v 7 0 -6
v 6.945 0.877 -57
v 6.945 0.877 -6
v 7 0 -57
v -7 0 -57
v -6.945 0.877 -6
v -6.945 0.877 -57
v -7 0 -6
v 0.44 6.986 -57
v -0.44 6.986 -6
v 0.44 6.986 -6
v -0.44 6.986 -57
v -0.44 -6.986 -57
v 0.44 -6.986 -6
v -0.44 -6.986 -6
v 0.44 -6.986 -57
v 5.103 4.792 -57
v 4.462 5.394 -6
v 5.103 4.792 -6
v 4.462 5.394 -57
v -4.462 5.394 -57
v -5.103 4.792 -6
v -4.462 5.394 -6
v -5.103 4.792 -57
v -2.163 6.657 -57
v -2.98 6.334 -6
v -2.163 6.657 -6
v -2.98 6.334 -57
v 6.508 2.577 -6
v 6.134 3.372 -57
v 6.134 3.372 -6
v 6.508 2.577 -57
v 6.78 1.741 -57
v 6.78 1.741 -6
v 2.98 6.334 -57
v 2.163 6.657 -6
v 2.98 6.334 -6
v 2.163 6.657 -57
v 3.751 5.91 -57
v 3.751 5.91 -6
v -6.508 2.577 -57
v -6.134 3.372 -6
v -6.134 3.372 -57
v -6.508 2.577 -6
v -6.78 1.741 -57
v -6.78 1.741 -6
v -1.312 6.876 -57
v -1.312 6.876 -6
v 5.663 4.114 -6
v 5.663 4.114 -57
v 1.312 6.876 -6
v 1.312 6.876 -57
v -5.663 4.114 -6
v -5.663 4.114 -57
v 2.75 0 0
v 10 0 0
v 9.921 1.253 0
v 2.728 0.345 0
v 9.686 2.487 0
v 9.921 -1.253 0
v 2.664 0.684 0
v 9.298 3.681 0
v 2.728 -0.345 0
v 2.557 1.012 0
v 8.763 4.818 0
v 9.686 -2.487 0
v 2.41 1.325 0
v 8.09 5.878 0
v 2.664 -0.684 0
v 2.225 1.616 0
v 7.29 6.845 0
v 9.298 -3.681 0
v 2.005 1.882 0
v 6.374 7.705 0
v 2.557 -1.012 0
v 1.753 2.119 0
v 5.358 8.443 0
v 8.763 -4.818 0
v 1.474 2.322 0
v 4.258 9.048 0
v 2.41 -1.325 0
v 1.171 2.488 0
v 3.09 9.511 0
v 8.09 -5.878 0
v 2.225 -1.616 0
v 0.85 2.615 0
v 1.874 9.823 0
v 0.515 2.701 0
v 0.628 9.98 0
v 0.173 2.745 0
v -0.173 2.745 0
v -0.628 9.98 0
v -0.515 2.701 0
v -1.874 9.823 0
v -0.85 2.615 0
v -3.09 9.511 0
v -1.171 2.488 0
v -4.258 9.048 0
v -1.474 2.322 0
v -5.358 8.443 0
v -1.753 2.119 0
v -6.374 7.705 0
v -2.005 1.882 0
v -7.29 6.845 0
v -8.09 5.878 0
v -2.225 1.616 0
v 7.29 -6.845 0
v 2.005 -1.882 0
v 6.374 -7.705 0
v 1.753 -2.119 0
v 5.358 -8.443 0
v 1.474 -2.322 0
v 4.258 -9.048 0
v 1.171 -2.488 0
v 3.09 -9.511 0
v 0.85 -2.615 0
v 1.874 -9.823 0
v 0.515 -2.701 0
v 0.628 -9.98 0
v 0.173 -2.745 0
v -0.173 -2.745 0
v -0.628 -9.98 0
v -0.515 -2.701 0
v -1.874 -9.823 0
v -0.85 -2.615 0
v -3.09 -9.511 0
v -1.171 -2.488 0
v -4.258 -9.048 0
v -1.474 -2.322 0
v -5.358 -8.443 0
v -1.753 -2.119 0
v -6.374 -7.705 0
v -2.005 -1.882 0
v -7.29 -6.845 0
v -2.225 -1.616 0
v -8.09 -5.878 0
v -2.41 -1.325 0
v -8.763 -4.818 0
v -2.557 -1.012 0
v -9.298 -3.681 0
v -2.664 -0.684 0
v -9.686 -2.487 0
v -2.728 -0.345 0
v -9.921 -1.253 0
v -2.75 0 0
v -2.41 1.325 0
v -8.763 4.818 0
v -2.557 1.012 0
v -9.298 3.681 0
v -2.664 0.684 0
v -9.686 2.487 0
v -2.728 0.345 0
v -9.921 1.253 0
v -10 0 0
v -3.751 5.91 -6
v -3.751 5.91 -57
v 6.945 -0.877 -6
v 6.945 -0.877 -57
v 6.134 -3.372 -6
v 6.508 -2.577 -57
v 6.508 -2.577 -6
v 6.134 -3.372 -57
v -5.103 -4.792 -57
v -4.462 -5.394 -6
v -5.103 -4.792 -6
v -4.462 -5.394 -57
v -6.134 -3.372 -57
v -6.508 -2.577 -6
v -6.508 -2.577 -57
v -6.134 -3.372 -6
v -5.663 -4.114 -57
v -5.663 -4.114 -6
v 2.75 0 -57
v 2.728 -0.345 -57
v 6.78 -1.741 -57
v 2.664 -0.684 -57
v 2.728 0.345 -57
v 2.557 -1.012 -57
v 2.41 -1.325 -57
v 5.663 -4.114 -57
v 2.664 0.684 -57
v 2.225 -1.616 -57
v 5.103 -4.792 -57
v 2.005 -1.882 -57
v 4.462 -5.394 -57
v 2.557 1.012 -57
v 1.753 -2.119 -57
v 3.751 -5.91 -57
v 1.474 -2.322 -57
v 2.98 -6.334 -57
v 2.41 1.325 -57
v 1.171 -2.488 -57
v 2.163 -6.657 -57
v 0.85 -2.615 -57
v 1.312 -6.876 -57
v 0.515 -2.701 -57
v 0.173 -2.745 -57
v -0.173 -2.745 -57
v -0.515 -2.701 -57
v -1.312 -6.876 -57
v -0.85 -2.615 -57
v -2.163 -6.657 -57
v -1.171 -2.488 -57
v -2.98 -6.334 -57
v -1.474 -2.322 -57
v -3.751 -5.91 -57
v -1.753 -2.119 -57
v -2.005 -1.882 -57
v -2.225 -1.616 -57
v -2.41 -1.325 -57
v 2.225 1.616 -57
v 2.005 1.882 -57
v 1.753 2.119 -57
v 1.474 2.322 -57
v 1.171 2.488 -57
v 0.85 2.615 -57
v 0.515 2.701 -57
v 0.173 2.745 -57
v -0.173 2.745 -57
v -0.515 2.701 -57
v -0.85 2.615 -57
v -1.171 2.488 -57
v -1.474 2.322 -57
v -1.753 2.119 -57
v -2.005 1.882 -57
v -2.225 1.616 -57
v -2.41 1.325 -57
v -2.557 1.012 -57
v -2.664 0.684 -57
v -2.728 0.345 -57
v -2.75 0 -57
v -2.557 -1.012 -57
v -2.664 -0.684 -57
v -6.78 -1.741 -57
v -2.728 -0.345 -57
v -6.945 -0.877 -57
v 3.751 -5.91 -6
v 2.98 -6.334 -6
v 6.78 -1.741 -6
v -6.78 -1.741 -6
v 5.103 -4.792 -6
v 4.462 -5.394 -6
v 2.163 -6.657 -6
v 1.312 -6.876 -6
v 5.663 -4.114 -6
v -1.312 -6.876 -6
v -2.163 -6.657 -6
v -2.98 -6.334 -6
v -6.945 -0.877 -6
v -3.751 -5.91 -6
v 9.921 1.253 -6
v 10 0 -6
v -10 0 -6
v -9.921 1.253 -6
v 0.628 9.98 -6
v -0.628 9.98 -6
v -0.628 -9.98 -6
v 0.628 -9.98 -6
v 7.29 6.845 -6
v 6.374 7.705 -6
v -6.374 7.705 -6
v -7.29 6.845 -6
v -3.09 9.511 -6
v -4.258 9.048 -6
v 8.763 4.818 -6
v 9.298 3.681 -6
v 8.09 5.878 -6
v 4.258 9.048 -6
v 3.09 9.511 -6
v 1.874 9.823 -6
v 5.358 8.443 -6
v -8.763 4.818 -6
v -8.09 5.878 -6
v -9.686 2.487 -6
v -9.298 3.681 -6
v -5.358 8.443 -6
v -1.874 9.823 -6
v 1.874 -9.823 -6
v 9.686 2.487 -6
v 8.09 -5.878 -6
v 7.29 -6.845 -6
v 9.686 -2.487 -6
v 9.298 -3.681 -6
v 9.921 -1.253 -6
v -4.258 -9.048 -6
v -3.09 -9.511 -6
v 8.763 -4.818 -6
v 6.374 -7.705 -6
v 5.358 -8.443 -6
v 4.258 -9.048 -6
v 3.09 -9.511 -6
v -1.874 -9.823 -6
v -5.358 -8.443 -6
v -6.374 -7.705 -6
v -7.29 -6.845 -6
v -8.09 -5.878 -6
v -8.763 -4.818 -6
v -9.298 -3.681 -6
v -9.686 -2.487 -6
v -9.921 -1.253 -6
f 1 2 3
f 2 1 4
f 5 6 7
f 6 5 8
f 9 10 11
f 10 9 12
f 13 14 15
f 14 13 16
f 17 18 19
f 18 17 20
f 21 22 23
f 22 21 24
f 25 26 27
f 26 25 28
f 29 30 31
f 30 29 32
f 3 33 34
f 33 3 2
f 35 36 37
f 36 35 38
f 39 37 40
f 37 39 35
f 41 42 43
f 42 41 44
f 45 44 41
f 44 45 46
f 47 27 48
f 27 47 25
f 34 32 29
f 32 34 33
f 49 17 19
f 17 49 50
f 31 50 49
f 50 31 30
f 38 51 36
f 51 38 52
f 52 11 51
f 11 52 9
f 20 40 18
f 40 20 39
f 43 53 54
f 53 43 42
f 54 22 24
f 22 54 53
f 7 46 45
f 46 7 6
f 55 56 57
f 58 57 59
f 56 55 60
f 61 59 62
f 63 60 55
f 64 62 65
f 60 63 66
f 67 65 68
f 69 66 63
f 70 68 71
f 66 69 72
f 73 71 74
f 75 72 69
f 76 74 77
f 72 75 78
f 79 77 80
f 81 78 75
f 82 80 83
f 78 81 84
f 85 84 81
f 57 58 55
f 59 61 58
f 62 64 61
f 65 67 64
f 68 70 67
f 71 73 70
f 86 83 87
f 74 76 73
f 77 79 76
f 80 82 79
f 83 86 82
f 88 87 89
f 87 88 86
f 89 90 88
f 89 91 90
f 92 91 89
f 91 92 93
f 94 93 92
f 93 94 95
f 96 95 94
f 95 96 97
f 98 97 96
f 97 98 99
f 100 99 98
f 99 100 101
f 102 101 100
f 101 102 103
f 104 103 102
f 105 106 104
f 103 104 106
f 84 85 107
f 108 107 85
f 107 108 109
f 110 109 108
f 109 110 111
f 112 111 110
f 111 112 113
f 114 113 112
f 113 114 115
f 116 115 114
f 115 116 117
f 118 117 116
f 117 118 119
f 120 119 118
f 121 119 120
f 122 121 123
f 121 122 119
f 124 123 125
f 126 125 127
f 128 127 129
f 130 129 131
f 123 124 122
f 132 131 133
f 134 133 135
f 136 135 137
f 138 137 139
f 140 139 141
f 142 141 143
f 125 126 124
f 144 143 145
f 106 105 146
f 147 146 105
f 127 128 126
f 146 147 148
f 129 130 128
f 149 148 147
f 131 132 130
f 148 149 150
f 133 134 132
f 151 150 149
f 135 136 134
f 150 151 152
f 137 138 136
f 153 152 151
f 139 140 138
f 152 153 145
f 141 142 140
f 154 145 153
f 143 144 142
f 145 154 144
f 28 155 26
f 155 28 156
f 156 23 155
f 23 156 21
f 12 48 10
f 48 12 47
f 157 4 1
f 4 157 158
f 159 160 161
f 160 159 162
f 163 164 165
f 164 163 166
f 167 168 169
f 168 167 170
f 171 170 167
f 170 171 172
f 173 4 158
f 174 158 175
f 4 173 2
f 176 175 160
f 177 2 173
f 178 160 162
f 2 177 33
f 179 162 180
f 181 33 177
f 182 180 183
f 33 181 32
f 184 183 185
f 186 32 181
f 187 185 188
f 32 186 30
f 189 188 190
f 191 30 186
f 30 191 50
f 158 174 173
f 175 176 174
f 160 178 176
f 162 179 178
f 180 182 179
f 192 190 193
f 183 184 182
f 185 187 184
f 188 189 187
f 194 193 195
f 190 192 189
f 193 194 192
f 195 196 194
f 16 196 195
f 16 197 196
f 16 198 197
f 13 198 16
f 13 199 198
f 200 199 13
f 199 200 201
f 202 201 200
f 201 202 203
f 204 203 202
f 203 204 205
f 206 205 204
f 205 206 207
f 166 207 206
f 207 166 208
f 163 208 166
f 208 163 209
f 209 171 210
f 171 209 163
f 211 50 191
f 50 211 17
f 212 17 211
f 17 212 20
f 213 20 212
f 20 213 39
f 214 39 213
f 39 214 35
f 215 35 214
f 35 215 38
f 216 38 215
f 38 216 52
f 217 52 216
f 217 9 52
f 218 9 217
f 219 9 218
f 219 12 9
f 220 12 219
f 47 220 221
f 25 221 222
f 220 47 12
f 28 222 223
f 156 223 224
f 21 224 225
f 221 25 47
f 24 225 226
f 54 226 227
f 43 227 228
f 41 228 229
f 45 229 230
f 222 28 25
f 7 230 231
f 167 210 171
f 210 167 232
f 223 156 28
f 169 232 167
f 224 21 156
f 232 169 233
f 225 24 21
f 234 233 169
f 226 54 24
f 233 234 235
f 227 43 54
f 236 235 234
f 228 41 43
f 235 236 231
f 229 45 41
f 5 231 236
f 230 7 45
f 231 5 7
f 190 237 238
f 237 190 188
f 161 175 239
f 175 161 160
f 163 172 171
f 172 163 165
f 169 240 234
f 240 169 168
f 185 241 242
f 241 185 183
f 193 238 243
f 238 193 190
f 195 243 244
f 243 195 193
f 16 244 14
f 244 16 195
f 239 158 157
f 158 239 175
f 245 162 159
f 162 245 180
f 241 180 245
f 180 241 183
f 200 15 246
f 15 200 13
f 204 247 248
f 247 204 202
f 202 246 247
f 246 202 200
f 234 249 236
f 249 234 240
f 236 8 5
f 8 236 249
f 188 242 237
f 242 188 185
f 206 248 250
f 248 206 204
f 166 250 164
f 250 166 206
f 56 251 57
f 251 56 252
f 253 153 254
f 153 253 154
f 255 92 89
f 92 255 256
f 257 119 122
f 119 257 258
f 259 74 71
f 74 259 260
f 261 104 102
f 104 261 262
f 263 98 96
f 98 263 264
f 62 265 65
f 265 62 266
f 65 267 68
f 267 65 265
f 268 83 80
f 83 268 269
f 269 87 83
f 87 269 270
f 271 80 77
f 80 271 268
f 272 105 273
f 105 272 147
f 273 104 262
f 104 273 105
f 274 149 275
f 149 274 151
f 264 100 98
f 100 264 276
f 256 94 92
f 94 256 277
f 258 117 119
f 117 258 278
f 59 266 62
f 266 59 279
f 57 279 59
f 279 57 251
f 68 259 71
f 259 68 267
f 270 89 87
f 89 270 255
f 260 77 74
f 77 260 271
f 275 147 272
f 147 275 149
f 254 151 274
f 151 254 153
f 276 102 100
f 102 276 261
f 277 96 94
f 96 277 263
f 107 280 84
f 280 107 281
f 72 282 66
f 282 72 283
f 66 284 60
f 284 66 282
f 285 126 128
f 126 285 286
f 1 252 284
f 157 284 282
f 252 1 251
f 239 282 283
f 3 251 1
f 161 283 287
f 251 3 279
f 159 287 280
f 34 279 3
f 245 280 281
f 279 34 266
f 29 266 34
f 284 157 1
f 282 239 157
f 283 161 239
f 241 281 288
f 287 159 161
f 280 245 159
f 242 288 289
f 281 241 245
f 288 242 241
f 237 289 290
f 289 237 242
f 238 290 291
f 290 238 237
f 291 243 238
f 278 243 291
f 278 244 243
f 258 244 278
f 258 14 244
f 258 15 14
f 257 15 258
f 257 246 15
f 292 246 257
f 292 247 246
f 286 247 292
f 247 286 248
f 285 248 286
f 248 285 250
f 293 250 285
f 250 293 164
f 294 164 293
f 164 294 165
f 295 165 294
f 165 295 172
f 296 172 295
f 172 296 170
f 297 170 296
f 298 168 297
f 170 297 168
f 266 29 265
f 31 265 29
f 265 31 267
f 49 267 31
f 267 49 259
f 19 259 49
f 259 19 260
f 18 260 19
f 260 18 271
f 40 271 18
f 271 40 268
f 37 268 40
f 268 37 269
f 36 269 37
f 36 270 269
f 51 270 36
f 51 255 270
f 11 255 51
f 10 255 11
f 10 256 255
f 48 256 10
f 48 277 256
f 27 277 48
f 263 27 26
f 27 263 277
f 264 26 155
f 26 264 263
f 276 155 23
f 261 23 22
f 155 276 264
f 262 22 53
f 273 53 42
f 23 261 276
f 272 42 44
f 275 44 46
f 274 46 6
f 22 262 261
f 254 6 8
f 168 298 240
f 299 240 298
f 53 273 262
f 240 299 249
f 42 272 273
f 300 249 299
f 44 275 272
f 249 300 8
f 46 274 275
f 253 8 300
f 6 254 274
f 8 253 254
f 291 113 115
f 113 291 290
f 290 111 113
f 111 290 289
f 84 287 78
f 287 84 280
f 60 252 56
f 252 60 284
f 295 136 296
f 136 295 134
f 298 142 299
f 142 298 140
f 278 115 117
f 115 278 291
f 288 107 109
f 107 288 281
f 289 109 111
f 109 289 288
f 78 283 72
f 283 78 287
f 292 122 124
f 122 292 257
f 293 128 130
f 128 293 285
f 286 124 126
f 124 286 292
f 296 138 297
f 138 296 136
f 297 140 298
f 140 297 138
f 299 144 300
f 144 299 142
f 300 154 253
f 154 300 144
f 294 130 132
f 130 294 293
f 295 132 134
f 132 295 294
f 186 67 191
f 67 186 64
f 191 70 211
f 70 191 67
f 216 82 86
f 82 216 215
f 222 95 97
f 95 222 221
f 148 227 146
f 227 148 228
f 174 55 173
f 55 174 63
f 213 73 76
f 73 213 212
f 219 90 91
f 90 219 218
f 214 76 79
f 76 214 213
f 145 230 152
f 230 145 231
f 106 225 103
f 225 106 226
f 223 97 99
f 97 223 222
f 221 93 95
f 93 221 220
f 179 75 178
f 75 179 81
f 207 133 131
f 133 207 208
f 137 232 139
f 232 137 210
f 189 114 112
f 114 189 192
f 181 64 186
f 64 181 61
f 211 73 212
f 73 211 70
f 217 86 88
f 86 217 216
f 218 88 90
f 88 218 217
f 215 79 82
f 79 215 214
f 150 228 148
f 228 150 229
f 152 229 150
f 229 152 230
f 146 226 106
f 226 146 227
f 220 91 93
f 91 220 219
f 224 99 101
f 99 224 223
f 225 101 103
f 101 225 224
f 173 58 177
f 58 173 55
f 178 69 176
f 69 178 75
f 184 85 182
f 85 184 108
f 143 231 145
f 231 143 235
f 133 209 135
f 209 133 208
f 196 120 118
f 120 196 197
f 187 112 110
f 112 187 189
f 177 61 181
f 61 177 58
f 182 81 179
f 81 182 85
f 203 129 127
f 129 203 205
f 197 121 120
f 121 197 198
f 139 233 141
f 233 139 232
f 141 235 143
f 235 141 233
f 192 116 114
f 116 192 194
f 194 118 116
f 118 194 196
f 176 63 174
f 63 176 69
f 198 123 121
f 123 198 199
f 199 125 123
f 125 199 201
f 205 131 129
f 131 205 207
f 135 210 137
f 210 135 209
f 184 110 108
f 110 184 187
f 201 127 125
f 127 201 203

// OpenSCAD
$fn = 50;


difference() {
	union() {
		translate(v = [0, 0, -57.0000000000]) {
			cylinder(h = 57, r = 7.0000000000);
		}
		translate(v = [0, 0, -6.0000000000]) {
			cylinder(h = 6, r = 10.0000000000);
		}
	}
	union() {
		#translate(v = [0, 0, -57]) {
			cylinder(h = 57, r = 2.7500000000);
		}
	}
}
